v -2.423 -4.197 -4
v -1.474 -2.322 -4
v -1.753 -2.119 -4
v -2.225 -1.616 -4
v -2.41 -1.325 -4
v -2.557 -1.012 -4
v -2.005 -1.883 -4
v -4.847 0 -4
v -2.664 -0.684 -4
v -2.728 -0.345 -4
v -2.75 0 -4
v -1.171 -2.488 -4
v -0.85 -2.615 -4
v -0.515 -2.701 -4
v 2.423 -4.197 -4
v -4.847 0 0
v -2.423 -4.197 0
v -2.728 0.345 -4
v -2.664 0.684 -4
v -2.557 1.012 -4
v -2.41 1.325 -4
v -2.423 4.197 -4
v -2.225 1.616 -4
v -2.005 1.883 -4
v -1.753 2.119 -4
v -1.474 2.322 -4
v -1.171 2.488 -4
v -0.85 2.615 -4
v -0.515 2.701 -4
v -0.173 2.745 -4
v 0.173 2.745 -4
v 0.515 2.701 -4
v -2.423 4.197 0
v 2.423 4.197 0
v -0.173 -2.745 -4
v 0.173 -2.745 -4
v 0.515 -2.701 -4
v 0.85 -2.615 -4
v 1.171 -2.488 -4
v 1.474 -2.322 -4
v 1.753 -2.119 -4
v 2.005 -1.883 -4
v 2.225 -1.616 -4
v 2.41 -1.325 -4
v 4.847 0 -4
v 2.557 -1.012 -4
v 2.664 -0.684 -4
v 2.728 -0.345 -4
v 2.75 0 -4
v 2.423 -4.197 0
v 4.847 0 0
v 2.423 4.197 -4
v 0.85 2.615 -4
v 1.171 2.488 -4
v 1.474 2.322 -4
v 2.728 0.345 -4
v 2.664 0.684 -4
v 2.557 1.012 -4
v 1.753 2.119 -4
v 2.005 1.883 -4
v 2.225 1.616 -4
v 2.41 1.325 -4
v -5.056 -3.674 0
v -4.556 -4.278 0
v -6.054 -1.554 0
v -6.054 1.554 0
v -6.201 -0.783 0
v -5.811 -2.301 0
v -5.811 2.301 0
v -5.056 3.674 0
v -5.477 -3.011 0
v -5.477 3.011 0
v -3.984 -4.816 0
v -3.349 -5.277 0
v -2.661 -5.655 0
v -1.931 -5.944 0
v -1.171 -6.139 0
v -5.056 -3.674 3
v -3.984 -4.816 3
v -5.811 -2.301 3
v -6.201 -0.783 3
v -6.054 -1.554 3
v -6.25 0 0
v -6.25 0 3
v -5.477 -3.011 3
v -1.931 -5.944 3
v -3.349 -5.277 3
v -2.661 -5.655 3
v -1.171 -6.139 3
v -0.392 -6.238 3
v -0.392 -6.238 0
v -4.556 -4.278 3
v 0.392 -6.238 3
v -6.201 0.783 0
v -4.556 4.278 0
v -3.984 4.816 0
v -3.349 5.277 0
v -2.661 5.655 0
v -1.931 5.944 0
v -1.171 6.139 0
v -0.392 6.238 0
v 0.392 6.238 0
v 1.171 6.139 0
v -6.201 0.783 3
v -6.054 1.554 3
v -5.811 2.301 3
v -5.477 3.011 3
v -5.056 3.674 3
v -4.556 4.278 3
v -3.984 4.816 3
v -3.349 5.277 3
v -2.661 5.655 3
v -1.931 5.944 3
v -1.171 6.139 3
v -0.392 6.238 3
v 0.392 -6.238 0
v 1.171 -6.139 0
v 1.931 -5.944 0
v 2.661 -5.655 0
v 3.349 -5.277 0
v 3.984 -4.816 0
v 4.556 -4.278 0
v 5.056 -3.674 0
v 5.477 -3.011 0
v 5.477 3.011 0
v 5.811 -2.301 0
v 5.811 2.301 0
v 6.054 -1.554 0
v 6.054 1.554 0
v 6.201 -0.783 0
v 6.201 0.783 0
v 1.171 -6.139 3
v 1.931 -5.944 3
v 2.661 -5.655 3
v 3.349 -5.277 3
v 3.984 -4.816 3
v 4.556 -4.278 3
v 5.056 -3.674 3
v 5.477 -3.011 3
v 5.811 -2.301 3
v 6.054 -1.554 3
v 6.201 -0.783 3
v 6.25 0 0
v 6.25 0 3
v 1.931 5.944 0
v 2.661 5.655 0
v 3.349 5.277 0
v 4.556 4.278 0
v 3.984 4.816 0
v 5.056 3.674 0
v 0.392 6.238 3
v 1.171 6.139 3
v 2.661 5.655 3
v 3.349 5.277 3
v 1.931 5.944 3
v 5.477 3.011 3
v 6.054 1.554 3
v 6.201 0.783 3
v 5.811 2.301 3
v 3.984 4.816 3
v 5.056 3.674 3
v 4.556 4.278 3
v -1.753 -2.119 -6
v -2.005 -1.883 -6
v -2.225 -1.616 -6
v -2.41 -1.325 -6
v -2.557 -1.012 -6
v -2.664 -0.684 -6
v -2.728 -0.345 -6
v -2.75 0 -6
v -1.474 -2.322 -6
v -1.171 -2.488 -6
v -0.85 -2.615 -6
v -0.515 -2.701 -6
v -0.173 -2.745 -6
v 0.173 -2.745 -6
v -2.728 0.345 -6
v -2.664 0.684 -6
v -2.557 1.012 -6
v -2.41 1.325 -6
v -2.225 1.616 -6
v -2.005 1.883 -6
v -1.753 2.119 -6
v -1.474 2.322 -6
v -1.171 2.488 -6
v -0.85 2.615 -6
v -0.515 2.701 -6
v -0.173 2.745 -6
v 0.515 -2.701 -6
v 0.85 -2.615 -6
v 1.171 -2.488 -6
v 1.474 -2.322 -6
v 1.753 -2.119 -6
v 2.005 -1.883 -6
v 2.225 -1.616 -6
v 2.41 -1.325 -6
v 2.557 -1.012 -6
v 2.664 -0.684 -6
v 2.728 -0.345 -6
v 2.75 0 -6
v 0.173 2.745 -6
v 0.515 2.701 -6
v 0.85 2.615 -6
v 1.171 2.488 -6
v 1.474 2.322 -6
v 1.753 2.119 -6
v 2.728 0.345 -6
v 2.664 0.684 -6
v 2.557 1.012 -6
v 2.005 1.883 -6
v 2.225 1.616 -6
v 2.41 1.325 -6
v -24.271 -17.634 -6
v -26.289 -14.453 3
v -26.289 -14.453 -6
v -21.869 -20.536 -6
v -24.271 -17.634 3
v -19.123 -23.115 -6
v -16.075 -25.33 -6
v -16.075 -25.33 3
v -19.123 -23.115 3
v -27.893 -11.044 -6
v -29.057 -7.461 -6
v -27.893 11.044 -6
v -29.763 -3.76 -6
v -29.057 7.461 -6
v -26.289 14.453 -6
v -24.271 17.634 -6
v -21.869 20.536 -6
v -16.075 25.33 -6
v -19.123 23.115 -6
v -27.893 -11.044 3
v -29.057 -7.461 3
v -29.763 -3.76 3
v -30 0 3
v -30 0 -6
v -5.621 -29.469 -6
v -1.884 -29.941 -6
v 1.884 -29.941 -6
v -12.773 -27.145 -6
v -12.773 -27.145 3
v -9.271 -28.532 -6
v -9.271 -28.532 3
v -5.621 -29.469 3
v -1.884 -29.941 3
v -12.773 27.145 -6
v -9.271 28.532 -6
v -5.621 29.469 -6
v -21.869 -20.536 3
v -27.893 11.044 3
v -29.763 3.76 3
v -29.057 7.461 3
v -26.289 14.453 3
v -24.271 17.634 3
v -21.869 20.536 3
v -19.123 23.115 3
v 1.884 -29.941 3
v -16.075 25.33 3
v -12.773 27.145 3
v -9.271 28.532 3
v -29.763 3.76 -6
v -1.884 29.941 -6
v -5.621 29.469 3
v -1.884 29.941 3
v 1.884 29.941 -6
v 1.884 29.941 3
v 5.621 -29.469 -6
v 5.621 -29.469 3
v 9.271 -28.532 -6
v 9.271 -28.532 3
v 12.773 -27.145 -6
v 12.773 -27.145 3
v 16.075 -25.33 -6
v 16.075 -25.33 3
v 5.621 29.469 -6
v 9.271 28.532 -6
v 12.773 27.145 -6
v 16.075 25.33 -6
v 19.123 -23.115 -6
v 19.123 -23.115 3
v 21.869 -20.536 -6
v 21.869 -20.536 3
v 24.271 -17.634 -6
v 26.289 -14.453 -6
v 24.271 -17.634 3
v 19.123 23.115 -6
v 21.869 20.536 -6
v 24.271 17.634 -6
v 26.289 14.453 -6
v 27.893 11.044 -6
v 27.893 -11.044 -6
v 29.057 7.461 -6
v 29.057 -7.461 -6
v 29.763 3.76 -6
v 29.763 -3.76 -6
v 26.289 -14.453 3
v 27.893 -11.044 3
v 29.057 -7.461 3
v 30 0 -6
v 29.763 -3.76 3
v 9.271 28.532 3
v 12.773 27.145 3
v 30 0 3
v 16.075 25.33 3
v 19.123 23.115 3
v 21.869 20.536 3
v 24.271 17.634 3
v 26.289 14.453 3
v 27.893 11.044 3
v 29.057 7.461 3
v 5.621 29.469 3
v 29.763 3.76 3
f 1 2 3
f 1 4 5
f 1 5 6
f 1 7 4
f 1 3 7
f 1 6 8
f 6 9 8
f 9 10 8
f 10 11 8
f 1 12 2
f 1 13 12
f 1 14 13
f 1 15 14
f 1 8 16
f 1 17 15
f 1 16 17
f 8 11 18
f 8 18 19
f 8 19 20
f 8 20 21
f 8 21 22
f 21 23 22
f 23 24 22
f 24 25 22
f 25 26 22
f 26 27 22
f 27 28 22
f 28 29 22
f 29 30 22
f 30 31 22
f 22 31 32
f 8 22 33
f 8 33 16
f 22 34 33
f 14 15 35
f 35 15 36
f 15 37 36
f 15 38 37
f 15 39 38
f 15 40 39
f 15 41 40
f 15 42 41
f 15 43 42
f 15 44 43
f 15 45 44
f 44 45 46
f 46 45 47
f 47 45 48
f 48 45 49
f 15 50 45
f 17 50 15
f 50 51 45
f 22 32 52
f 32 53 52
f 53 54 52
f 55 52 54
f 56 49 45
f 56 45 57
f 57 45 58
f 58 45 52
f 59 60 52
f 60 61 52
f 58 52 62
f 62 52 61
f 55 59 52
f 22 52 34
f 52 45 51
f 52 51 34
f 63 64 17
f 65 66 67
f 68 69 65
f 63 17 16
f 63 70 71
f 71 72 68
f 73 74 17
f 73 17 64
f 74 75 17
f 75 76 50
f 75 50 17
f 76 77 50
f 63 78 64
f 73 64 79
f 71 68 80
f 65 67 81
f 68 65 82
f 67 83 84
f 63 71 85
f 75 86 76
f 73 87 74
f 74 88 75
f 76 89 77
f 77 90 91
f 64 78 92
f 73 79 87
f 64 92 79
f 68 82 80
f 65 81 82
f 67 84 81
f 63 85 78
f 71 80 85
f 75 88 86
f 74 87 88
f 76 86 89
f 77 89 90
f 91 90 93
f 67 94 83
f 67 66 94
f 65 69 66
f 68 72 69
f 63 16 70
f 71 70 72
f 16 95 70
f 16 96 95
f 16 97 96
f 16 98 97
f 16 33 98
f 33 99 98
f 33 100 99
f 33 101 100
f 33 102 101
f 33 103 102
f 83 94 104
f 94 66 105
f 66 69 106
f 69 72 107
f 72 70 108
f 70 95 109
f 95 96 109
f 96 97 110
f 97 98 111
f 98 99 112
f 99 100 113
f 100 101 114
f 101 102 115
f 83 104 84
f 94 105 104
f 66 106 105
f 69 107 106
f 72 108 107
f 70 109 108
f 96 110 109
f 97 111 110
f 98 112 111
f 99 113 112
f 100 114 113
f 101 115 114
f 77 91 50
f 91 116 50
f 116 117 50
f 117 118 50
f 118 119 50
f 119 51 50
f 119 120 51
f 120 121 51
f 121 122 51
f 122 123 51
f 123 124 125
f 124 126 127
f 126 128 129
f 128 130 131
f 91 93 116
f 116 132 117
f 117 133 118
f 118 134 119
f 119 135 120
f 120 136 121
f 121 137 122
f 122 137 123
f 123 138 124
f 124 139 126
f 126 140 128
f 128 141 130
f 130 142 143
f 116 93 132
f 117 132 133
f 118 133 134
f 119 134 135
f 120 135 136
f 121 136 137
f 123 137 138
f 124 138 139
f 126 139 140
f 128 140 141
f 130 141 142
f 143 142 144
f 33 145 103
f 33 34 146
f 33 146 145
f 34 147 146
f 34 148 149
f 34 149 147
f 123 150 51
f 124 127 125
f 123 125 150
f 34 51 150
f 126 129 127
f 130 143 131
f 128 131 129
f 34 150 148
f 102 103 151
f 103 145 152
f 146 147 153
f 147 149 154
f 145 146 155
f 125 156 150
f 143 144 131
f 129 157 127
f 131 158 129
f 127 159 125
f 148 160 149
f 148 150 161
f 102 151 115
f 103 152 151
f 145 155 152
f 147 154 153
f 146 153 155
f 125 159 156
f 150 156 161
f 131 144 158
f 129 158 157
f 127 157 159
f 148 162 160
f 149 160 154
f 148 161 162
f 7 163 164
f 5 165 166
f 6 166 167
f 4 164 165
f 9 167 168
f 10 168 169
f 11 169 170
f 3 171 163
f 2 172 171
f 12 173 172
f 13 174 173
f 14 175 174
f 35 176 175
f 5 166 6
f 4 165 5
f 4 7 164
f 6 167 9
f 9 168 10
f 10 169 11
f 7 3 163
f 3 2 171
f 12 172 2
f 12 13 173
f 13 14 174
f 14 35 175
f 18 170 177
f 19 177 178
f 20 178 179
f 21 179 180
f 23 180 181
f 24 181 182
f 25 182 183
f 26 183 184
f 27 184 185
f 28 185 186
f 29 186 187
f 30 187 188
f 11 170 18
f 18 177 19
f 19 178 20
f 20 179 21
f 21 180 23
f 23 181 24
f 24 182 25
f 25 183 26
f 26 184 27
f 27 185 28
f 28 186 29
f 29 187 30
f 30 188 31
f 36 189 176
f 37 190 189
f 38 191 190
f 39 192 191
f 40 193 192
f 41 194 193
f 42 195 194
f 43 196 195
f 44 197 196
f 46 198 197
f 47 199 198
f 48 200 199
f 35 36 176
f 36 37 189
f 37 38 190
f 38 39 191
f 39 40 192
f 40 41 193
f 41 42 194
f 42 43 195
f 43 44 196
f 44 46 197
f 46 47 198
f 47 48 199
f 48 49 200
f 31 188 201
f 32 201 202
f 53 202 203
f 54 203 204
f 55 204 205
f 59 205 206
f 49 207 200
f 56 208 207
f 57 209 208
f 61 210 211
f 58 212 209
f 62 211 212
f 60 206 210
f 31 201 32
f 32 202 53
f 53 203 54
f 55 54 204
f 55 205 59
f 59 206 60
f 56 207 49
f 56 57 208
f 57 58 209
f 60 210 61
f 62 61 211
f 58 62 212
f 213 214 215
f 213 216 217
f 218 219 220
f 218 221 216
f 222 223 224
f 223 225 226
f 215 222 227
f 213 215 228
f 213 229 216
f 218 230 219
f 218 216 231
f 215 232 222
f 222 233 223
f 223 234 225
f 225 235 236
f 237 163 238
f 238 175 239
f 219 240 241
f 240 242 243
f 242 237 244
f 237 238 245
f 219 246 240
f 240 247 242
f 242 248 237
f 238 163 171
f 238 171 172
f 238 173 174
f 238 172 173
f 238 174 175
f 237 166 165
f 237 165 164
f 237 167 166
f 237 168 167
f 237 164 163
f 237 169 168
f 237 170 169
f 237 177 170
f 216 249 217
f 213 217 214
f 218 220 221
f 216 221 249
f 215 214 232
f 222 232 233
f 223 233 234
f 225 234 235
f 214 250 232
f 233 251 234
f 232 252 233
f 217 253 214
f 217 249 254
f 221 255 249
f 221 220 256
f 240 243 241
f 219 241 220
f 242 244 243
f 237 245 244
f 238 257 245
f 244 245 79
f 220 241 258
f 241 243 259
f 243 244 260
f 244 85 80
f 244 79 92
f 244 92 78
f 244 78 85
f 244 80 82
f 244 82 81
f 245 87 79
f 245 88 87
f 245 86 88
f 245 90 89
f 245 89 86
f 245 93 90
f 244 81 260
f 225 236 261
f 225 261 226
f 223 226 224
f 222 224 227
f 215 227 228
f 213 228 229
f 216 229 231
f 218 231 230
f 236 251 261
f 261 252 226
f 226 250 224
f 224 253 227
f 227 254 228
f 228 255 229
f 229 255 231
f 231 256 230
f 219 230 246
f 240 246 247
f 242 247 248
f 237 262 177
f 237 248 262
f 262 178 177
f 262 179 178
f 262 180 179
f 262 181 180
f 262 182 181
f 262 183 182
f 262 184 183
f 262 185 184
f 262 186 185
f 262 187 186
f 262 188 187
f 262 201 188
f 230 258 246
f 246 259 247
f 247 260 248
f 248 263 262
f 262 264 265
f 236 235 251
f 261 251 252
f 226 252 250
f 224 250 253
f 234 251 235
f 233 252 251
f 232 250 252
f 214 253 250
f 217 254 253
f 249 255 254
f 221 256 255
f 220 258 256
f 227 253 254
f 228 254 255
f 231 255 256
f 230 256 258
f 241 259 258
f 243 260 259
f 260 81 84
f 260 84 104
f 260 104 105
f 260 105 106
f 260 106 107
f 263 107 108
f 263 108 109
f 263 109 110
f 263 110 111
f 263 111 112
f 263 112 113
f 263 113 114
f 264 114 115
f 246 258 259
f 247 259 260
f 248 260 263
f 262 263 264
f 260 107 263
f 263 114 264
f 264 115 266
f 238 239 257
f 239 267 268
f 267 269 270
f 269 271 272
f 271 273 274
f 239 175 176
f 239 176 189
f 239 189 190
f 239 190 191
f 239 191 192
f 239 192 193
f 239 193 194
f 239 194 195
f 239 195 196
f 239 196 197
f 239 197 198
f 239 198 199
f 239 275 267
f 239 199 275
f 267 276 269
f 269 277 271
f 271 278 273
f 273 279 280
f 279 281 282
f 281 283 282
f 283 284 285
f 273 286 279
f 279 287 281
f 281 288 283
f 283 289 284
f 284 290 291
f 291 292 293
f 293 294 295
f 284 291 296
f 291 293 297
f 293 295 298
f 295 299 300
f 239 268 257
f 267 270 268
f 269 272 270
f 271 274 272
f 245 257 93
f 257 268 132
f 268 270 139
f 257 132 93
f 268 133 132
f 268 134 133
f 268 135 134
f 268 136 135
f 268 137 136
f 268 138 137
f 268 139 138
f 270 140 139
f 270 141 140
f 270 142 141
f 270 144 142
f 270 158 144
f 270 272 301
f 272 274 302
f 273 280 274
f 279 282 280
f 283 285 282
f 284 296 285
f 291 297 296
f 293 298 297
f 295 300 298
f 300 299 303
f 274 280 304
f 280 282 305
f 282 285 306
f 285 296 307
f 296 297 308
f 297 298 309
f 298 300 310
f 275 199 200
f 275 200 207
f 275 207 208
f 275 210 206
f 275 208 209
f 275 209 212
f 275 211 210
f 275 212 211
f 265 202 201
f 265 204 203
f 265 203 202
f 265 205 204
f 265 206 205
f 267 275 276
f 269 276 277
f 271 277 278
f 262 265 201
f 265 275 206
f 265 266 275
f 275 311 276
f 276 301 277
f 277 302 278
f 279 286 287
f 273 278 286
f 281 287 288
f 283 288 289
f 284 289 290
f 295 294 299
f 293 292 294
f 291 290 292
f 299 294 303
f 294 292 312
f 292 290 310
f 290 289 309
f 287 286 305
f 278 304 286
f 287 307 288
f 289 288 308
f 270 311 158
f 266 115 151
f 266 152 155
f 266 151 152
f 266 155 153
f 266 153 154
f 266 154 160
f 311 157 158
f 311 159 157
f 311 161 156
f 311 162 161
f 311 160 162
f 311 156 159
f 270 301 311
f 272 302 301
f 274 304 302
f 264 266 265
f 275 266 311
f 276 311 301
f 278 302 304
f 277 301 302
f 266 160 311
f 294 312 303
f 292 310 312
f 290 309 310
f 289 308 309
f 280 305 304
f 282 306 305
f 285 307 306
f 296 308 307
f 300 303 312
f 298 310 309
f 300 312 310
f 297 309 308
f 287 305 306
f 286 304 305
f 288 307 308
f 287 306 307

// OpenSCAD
$fn = 50;


difference() {
	union() {
		translate(v = [0, 0, -6.0000000000]) {
			cylinder(h = 9.0000000000, r = 30.0000000000);
		}
	}
	union() {
		translate(v = [0, 0, 0]) {
			rotate(a = [0, 0, 0]) {
				difference() {
					union() {
						translate(v = [0, 0, -4]) {
							linear_extrude(height = 4) {
								polygon(points = [[4.8468000000, 0.0000000000], [2.4234000000, 4.1974519271], [-2.4234000000, 4.1974519271], [-4.8468000000, 0.0000000000], [-2.4234000000, -4.1974519271], [2.4234000000, -4.1974519271]]);
							}
						}
					}
					union();
				}
			}
		}
		#cylinder(h = 3, r = 6.2500000000);
		#translate(v = [0, 0, -100.0000000000]) {
			cylinder(h = 200, r = 2.7500000000);
		}
	}
}
